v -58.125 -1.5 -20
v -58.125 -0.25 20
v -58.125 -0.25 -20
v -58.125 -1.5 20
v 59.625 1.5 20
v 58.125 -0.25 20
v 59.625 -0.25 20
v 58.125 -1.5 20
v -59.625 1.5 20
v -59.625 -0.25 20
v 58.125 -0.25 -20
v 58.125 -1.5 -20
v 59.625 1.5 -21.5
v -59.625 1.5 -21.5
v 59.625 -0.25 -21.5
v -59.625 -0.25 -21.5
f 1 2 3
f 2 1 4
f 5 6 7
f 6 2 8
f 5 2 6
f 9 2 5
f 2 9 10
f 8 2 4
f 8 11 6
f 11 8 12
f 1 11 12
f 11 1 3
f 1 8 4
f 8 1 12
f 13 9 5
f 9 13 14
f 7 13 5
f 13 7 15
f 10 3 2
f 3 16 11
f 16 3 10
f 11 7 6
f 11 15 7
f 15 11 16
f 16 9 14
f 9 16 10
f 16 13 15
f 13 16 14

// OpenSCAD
// Trennwand


Metallkasten = true;
Plastikkasten = false;
Querstrebe = false;


L = 116.25;
H = 40;

if (Metallkasten) {
    cube([L,3.0,H],center=true);

    translate([L/2+0.75,1.25/2,0])
    cube([1.5,1.75,H],center=true);

    translate([-(L/2+0.75),1.25/2,0])
    cube([1.5,1.75,H],center=true);

    translate([0,1.25/2,-(H/2+0.75)])
    cube([L+3,1.75,1.5],center=true);

}if (Plastikkasten) {
    LO = 109;
    LU = 100;
    
    hull(){
        translate([0,0,H-1])
        #cube([LO,3.0,1],center=true);
        cube([LU,3.0,1],center=true);
    }
    
    translate([LU/2+2.0,1.25/2,H/2-0.5])
    rotate([0,6,0])
    cube([1.5,20,H],center=true);
    
    translate([-LU/2-2.0,1.25/2,H/2-0.5])
    rotate([0,-6,0])
    cube([1.5,20,H],center=true);
}

if (Querstrebe) {
    cube([L,3.0,H],center=true);
}
